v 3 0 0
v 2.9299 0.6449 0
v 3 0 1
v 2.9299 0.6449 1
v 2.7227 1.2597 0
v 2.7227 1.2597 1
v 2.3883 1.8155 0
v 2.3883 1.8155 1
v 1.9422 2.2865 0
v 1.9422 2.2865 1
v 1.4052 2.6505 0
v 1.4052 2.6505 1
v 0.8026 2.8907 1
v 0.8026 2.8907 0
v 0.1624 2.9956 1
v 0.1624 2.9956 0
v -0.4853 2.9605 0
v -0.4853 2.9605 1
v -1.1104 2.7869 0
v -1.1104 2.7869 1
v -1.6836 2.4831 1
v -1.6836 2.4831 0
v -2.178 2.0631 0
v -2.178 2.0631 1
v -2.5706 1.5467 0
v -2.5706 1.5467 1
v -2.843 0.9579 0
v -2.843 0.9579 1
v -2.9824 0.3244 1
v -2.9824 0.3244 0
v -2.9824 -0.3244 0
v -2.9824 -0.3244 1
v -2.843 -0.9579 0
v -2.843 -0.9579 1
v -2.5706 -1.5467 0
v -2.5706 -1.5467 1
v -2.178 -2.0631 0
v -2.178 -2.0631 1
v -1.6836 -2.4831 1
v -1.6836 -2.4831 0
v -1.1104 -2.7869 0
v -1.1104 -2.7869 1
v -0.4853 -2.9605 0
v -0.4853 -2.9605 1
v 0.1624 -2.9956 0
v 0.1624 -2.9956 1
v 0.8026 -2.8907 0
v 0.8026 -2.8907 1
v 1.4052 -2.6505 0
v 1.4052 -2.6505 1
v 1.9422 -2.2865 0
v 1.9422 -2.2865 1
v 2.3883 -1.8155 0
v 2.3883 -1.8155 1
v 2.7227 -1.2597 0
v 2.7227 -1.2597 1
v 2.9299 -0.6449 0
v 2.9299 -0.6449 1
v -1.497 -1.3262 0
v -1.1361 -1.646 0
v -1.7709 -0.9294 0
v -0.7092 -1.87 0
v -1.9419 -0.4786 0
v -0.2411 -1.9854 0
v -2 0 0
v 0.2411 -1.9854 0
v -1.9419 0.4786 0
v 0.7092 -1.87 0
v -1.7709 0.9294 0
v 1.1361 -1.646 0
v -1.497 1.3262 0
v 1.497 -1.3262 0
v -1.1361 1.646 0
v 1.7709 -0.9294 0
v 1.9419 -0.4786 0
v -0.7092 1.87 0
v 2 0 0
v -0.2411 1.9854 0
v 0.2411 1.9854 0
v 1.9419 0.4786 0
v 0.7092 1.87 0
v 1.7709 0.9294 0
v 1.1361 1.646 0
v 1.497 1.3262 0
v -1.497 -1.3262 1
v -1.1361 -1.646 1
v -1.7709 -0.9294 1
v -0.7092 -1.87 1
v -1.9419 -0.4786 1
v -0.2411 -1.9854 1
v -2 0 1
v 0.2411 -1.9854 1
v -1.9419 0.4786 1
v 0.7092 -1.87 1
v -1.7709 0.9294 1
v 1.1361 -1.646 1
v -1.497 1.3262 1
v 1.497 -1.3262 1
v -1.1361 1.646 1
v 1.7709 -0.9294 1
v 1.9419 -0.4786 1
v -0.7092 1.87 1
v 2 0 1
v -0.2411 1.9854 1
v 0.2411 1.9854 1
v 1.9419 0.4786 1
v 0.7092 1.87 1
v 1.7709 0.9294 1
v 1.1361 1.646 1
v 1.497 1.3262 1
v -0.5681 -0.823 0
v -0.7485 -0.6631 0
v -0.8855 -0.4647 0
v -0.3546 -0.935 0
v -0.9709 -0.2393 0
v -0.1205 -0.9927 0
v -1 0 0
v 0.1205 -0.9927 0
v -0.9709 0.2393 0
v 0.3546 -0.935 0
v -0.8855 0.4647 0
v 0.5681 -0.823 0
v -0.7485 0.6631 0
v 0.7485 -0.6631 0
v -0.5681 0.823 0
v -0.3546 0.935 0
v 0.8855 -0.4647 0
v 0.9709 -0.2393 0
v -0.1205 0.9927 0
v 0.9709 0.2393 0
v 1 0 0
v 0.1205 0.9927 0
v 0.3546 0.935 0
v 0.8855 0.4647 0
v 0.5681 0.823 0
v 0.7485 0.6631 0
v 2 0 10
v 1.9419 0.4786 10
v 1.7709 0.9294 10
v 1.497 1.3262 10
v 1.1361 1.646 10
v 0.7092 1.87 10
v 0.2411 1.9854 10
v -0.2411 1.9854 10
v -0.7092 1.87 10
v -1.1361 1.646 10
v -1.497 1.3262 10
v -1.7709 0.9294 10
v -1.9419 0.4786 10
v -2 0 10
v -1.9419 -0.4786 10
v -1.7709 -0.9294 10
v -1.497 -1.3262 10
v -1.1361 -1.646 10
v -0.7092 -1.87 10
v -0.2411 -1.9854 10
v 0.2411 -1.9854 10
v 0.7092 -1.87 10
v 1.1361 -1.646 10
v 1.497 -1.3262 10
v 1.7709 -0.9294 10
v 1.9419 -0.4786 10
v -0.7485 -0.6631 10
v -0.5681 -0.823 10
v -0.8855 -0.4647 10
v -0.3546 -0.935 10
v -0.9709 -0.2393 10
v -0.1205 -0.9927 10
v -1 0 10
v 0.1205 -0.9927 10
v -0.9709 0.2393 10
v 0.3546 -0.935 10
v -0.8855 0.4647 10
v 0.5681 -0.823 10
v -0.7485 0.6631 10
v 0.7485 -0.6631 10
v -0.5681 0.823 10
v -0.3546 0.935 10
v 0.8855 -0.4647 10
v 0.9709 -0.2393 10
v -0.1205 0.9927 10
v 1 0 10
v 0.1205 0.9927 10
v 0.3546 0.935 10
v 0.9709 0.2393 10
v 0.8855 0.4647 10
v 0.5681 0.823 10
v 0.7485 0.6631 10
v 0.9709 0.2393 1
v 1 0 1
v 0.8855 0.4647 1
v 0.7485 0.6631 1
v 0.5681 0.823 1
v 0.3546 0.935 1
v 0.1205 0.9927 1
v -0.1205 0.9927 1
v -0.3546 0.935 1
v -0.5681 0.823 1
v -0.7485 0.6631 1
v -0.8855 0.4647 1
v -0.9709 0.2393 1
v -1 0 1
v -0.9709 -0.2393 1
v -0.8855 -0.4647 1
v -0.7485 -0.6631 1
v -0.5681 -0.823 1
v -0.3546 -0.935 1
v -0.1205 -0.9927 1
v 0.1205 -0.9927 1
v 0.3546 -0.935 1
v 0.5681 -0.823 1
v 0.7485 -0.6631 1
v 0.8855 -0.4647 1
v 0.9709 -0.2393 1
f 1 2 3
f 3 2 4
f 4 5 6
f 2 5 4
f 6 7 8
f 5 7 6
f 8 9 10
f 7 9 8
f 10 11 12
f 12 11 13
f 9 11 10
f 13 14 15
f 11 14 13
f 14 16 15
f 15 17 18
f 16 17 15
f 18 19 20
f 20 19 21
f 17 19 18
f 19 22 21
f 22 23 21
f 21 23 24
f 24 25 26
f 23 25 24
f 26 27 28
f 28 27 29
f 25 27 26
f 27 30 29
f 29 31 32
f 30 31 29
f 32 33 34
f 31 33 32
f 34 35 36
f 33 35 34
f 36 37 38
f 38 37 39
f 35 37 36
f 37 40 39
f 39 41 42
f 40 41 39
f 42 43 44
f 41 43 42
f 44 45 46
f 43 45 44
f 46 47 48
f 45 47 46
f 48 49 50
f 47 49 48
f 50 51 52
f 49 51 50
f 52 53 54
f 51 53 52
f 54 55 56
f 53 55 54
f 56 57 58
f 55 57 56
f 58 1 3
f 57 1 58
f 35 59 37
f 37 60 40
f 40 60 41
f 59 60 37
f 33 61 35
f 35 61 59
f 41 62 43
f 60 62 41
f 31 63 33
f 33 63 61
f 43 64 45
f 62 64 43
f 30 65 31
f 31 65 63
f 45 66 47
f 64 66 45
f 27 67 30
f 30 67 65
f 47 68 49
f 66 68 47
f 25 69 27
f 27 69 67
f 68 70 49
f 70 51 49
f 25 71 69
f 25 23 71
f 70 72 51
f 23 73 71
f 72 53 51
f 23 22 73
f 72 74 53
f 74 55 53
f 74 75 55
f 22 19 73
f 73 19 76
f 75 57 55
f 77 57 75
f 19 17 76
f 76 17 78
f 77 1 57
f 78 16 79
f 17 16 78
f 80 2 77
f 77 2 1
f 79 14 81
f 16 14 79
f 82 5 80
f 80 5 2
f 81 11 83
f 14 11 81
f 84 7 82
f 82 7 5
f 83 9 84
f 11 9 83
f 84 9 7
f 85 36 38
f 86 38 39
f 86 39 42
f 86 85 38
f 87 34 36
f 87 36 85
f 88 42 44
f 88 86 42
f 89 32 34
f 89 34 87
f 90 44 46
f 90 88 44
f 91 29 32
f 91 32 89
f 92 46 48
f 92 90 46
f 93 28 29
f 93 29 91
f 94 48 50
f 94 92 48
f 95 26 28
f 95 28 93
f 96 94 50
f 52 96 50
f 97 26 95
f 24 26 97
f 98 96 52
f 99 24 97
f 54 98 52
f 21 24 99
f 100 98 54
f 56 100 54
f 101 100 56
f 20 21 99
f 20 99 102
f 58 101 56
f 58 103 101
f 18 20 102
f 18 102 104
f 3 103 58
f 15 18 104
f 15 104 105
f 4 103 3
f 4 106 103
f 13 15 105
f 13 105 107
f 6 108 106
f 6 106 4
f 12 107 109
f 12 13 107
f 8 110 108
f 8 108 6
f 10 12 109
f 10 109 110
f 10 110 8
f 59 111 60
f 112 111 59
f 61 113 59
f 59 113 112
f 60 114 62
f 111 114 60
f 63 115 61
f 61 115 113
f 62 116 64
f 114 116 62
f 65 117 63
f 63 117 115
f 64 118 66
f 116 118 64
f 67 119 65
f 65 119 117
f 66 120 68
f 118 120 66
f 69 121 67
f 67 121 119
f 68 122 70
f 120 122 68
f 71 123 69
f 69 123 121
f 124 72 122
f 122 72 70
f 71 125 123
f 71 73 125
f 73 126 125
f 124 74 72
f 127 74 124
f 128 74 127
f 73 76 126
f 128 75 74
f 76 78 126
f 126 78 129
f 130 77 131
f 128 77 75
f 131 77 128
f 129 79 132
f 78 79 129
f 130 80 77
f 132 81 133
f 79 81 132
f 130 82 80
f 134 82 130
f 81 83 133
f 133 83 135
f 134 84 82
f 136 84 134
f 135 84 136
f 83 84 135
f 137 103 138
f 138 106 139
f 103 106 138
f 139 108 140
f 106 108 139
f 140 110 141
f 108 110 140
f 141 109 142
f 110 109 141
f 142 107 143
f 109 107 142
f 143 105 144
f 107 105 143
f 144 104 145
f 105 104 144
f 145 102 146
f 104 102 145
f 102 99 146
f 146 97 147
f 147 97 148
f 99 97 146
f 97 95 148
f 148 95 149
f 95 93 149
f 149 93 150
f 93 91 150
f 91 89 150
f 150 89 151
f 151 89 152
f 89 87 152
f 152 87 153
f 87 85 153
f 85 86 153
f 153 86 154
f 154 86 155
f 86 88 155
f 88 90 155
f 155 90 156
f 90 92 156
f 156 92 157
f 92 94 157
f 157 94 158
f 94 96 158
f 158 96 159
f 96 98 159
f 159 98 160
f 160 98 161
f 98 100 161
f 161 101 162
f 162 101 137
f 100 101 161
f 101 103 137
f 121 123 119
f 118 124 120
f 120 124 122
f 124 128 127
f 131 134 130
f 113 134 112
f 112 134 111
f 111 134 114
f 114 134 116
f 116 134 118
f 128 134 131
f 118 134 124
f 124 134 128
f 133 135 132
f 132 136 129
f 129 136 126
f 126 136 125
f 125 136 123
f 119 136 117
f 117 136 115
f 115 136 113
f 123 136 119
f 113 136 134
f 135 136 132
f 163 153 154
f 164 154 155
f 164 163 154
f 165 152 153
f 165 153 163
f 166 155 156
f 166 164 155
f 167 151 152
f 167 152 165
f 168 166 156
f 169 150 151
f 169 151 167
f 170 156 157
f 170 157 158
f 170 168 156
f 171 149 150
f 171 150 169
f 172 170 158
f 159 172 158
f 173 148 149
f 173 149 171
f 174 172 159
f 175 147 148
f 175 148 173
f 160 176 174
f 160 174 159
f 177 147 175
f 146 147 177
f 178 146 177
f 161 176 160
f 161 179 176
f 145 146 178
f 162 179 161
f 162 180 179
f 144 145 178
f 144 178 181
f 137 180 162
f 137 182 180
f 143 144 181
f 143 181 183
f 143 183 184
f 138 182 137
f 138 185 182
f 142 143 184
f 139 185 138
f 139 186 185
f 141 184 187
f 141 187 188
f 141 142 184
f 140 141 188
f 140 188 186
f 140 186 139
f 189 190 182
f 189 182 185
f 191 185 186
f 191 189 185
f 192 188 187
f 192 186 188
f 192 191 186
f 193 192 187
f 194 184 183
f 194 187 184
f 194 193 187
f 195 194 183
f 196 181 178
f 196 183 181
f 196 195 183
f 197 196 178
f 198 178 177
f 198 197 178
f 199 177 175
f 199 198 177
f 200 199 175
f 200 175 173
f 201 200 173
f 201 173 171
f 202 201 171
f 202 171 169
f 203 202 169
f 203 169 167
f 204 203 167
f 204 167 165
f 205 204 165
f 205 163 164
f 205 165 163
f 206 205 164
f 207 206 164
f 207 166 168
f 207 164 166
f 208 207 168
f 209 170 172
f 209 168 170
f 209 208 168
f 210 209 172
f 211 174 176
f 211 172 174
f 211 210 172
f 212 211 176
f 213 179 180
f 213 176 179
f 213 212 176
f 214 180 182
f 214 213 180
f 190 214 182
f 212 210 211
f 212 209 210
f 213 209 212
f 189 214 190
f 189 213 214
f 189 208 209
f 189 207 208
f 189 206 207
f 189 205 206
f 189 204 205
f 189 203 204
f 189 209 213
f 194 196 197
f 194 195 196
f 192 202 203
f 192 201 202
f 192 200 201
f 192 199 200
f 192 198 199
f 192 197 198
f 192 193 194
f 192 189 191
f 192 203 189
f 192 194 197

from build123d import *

# Parameters (mm, degrees)
CIRCLE002_R      = 3
EXTRUDE002_DEPTH = 1
CIRCLE_R         = 1
EXTRUDE_DEPTH    = 11
CIRCLE001_R      = 2
EXTRUDE001_DEPTH = 10


with BuildPart() as ext_foot:
    # Circle002 → Extrude002 (new body)
    with BuildSketch(Plane.XY):
        Circle(CIRCLE002_R)
    extrude(amount=EXTRUDE002_DEPTH)


with BuildPart() as ext_inner:
    # Circle → Extrude (new body)
    with BuildSketch(Plane.XY):
        Circle(CIRCLE_R)
    extrude(amount=EXTRUDE_DEPTH)


with BuildPart() as anti_flex:
    # Circle001 → Extrude001 (new body)
    with BuildSketch(Plane.XY):
        Circle(CIRCLE001_R)
    extrude(amount=EXTRUDE001_DEPTH)

    # Cut: cut ext_inner
    add(ext_inner.part, mode=Mode.SUBTRACT)

    # Fusion: union ext_foot
    add(ext_foot.part)


solid = anti_flex.part
